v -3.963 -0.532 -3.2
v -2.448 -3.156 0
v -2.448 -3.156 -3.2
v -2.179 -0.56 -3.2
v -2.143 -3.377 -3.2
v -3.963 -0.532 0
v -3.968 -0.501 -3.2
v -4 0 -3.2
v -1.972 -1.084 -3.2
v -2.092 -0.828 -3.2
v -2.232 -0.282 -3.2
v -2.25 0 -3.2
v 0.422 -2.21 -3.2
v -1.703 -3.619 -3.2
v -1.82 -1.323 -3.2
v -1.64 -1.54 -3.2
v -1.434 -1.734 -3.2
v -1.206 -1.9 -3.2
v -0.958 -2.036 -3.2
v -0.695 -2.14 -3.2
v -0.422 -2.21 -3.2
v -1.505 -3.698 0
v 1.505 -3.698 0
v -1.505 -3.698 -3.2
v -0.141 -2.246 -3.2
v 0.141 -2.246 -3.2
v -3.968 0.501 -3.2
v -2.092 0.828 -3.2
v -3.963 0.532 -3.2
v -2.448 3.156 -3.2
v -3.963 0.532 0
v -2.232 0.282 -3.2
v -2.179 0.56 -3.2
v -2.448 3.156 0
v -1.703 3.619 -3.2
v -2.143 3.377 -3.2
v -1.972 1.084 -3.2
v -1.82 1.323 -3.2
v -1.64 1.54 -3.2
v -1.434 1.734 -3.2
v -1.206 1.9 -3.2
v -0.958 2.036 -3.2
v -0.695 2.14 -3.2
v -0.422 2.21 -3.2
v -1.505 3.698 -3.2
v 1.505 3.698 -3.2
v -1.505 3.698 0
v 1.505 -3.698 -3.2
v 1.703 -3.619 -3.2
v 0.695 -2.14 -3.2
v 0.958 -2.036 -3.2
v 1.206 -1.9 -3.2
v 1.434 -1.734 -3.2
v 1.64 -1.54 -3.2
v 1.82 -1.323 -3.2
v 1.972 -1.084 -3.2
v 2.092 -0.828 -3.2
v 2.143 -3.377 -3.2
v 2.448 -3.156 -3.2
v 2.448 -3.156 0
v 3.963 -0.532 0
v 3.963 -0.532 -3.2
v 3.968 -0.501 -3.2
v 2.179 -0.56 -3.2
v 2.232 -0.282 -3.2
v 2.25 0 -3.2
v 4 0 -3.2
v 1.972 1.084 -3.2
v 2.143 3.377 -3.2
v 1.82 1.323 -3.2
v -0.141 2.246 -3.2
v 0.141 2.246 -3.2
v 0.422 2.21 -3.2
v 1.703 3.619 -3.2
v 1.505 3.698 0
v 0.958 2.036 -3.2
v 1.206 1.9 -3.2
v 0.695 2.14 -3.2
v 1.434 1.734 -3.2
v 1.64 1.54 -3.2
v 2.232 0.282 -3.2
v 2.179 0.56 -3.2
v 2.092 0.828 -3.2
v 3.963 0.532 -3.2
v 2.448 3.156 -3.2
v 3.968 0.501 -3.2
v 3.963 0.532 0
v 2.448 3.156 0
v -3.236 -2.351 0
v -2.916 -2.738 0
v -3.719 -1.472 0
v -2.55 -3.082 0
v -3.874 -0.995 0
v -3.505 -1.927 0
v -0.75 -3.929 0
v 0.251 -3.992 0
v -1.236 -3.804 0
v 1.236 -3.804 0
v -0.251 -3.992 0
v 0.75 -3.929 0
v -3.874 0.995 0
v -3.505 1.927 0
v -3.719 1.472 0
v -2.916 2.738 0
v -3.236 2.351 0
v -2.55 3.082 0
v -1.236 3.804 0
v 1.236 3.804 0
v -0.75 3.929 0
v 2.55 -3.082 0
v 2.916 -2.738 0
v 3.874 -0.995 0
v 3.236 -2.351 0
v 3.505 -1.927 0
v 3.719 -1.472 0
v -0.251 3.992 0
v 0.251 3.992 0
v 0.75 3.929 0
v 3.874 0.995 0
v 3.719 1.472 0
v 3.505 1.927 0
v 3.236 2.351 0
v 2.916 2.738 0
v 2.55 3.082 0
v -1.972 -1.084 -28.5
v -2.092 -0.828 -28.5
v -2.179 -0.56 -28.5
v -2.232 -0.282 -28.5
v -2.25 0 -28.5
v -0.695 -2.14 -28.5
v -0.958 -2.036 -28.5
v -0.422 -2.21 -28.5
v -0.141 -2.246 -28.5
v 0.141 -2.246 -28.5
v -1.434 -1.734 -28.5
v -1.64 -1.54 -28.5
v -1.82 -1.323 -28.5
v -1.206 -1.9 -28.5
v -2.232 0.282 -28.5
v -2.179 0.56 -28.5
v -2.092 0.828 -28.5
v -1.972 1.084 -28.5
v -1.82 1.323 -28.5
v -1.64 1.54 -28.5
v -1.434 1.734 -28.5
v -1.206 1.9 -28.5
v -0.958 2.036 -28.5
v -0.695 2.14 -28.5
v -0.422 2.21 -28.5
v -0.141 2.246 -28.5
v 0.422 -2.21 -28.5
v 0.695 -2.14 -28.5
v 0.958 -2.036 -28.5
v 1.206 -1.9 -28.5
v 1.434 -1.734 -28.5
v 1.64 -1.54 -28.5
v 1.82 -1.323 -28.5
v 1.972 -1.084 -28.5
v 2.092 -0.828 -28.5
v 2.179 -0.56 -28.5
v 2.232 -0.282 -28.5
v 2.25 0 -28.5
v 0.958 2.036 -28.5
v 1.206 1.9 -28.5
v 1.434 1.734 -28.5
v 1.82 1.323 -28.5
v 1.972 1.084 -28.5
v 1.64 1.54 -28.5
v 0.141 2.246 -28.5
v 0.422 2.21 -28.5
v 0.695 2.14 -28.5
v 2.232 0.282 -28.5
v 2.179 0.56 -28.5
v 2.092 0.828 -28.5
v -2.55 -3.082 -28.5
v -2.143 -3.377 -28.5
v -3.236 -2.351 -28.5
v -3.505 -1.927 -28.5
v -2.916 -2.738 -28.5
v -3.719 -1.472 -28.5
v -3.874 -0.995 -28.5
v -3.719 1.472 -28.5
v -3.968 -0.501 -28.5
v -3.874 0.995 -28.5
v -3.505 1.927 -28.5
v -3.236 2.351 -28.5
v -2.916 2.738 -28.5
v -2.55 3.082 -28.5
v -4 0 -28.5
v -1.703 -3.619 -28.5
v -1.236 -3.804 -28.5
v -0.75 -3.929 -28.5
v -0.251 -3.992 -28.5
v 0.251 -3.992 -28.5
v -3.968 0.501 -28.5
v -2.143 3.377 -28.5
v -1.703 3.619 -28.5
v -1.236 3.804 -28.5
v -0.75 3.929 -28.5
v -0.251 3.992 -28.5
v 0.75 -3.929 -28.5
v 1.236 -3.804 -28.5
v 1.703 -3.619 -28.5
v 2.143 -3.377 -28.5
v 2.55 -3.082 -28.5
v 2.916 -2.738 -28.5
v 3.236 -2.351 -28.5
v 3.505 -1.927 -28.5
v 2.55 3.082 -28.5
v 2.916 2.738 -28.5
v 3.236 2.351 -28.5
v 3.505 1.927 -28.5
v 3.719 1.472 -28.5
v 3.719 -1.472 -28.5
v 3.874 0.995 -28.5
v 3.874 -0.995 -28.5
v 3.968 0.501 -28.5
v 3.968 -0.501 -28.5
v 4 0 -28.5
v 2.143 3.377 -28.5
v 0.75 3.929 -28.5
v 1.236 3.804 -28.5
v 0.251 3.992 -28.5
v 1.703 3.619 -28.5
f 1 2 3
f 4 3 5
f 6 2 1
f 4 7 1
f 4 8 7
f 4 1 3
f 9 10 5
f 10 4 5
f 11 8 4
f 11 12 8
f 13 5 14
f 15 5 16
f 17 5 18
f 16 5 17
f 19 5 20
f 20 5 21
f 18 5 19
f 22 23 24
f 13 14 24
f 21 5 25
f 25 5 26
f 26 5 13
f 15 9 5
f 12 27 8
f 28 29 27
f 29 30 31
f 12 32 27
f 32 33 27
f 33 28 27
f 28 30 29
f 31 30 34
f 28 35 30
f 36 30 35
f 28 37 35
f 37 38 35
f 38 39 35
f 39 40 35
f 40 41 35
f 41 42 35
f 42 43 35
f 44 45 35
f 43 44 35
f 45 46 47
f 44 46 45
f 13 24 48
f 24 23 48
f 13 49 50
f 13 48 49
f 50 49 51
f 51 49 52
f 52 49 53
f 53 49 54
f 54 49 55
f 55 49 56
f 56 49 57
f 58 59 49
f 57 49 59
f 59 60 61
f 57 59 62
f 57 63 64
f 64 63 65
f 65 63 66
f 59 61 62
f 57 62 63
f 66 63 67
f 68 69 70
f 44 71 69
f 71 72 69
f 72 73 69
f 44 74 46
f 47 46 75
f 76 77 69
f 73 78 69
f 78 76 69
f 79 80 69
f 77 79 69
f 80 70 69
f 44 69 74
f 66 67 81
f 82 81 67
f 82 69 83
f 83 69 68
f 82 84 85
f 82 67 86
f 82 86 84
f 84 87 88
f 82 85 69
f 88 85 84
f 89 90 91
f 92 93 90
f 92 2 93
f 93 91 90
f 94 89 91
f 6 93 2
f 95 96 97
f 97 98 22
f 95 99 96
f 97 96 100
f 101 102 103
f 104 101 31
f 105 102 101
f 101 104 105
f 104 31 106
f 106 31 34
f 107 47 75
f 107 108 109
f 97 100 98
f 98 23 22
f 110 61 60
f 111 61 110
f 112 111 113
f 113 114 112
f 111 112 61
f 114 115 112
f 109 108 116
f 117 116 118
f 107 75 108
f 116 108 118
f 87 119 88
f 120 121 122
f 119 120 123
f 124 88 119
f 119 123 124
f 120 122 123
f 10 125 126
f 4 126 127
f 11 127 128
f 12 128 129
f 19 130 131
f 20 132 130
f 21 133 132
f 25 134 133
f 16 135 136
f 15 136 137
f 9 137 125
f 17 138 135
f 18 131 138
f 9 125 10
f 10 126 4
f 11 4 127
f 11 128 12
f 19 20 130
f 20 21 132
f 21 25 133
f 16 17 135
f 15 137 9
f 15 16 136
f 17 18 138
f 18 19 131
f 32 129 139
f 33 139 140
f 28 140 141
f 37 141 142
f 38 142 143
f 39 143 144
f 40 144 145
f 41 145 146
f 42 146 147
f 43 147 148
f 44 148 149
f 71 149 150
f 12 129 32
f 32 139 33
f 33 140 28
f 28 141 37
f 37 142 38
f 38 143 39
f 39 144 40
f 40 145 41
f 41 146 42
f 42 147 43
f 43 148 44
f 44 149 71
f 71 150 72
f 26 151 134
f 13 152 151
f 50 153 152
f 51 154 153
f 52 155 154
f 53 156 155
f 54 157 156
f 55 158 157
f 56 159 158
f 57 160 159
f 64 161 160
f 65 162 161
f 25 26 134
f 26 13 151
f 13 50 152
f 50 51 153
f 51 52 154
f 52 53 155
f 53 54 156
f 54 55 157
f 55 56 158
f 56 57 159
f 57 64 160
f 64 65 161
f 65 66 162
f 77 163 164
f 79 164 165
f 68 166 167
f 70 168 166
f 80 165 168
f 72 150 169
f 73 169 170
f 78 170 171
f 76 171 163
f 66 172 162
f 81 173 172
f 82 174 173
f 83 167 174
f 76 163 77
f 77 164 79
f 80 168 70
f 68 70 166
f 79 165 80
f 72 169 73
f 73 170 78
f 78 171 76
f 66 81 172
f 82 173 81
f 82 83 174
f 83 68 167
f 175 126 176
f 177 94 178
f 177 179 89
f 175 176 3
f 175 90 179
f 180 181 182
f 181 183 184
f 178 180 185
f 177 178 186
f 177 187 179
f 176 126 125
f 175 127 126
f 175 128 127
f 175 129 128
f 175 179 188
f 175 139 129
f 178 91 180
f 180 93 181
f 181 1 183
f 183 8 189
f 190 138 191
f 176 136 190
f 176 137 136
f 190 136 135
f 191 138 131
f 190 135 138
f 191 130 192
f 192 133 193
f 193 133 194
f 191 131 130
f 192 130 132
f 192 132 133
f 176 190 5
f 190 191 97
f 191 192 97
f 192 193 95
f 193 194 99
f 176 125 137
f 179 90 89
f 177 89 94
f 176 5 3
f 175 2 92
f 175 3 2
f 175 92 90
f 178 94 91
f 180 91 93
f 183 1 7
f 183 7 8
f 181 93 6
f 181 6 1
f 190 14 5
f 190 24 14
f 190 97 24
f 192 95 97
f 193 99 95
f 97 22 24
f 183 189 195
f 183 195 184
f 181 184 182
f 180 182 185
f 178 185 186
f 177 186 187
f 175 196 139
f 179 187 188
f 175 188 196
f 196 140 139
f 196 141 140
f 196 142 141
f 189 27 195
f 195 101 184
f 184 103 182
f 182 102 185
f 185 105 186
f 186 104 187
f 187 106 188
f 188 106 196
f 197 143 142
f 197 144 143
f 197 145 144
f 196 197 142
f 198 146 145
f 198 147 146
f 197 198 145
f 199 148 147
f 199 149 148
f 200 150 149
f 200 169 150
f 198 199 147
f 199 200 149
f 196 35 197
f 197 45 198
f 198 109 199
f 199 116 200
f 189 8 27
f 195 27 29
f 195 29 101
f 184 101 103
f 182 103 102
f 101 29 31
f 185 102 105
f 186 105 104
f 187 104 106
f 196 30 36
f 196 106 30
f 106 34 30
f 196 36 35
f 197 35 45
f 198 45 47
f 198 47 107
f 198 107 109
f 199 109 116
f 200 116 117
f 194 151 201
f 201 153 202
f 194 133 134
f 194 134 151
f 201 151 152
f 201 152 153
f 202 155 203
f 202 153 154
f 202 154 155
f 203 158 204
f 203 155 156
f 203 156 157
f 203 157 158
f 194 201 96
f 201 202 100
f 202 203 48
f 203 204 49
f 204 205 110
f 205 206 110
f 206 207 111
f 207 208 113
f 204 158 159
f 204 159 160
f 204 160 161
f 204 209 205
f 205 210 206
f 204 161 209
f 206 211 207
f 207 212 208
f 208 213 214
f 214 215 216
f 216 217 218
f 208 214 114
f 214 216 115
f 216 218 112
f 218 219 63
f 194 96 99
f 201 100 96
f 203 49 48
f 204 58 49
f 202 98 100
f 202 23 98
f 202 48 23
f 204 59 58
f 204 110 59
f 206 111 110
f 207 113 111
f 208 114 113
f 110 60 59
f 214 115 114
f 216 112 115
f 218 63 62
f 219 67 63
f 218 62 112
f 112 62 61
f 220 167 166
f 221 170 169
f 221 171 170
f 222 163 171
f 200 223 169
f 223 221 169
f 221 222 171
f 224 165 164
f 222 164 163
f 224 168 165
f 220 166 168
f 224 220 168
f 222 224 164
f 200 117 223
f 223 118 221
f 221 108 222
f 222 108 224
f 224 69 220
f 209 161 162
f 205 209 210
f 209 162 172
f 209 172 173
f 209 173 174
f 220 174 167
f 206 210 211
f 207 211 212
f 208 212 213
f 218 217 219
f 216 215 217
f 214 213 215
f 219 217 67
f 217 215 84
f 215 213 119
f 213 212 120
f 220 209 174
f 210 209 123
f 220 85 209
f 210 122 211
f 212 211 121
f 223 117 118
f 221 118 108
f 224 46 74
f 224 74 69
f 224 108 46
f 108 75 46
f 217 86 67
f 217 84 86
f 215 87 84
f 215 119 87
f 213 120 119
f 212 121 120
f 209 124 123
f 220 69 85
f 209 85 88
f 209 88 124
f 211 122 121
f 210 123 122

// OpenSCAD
$fn = 50;

difference() {
	union() {
		translate(v = [0, 0, -28.5]) {
			cylinder(h = 31.5, r = 4.0);
		}
	}
	union() {
		translate(v = [0, 0, 0]) {
			rotate(a = [0, 0, 0]) {
				difference() {
					union() {
						translate(v = [0, 0, -3.2]) {
							linear_extrude(height = 3.2) {
								polygon(points = [[4.2698, 0.0], [2.1349000000000005, 3.697755269078796], [-2.134899999999999, 3.6977552690787965], [-4.2698, 5.228996902999369e-16], [-2.134900000000002, -3.6977552690787956], [2.1348999999999974, -3.697755269078798]]);
							}
						}
					}
					union();
				}
			}
		}
		#cylinder(h = 3, r = 5.0);
		#translate(v = [0, 0, -100.0]) {
			cylinder(h = 200, r = 2.25);
		}
	}
}
